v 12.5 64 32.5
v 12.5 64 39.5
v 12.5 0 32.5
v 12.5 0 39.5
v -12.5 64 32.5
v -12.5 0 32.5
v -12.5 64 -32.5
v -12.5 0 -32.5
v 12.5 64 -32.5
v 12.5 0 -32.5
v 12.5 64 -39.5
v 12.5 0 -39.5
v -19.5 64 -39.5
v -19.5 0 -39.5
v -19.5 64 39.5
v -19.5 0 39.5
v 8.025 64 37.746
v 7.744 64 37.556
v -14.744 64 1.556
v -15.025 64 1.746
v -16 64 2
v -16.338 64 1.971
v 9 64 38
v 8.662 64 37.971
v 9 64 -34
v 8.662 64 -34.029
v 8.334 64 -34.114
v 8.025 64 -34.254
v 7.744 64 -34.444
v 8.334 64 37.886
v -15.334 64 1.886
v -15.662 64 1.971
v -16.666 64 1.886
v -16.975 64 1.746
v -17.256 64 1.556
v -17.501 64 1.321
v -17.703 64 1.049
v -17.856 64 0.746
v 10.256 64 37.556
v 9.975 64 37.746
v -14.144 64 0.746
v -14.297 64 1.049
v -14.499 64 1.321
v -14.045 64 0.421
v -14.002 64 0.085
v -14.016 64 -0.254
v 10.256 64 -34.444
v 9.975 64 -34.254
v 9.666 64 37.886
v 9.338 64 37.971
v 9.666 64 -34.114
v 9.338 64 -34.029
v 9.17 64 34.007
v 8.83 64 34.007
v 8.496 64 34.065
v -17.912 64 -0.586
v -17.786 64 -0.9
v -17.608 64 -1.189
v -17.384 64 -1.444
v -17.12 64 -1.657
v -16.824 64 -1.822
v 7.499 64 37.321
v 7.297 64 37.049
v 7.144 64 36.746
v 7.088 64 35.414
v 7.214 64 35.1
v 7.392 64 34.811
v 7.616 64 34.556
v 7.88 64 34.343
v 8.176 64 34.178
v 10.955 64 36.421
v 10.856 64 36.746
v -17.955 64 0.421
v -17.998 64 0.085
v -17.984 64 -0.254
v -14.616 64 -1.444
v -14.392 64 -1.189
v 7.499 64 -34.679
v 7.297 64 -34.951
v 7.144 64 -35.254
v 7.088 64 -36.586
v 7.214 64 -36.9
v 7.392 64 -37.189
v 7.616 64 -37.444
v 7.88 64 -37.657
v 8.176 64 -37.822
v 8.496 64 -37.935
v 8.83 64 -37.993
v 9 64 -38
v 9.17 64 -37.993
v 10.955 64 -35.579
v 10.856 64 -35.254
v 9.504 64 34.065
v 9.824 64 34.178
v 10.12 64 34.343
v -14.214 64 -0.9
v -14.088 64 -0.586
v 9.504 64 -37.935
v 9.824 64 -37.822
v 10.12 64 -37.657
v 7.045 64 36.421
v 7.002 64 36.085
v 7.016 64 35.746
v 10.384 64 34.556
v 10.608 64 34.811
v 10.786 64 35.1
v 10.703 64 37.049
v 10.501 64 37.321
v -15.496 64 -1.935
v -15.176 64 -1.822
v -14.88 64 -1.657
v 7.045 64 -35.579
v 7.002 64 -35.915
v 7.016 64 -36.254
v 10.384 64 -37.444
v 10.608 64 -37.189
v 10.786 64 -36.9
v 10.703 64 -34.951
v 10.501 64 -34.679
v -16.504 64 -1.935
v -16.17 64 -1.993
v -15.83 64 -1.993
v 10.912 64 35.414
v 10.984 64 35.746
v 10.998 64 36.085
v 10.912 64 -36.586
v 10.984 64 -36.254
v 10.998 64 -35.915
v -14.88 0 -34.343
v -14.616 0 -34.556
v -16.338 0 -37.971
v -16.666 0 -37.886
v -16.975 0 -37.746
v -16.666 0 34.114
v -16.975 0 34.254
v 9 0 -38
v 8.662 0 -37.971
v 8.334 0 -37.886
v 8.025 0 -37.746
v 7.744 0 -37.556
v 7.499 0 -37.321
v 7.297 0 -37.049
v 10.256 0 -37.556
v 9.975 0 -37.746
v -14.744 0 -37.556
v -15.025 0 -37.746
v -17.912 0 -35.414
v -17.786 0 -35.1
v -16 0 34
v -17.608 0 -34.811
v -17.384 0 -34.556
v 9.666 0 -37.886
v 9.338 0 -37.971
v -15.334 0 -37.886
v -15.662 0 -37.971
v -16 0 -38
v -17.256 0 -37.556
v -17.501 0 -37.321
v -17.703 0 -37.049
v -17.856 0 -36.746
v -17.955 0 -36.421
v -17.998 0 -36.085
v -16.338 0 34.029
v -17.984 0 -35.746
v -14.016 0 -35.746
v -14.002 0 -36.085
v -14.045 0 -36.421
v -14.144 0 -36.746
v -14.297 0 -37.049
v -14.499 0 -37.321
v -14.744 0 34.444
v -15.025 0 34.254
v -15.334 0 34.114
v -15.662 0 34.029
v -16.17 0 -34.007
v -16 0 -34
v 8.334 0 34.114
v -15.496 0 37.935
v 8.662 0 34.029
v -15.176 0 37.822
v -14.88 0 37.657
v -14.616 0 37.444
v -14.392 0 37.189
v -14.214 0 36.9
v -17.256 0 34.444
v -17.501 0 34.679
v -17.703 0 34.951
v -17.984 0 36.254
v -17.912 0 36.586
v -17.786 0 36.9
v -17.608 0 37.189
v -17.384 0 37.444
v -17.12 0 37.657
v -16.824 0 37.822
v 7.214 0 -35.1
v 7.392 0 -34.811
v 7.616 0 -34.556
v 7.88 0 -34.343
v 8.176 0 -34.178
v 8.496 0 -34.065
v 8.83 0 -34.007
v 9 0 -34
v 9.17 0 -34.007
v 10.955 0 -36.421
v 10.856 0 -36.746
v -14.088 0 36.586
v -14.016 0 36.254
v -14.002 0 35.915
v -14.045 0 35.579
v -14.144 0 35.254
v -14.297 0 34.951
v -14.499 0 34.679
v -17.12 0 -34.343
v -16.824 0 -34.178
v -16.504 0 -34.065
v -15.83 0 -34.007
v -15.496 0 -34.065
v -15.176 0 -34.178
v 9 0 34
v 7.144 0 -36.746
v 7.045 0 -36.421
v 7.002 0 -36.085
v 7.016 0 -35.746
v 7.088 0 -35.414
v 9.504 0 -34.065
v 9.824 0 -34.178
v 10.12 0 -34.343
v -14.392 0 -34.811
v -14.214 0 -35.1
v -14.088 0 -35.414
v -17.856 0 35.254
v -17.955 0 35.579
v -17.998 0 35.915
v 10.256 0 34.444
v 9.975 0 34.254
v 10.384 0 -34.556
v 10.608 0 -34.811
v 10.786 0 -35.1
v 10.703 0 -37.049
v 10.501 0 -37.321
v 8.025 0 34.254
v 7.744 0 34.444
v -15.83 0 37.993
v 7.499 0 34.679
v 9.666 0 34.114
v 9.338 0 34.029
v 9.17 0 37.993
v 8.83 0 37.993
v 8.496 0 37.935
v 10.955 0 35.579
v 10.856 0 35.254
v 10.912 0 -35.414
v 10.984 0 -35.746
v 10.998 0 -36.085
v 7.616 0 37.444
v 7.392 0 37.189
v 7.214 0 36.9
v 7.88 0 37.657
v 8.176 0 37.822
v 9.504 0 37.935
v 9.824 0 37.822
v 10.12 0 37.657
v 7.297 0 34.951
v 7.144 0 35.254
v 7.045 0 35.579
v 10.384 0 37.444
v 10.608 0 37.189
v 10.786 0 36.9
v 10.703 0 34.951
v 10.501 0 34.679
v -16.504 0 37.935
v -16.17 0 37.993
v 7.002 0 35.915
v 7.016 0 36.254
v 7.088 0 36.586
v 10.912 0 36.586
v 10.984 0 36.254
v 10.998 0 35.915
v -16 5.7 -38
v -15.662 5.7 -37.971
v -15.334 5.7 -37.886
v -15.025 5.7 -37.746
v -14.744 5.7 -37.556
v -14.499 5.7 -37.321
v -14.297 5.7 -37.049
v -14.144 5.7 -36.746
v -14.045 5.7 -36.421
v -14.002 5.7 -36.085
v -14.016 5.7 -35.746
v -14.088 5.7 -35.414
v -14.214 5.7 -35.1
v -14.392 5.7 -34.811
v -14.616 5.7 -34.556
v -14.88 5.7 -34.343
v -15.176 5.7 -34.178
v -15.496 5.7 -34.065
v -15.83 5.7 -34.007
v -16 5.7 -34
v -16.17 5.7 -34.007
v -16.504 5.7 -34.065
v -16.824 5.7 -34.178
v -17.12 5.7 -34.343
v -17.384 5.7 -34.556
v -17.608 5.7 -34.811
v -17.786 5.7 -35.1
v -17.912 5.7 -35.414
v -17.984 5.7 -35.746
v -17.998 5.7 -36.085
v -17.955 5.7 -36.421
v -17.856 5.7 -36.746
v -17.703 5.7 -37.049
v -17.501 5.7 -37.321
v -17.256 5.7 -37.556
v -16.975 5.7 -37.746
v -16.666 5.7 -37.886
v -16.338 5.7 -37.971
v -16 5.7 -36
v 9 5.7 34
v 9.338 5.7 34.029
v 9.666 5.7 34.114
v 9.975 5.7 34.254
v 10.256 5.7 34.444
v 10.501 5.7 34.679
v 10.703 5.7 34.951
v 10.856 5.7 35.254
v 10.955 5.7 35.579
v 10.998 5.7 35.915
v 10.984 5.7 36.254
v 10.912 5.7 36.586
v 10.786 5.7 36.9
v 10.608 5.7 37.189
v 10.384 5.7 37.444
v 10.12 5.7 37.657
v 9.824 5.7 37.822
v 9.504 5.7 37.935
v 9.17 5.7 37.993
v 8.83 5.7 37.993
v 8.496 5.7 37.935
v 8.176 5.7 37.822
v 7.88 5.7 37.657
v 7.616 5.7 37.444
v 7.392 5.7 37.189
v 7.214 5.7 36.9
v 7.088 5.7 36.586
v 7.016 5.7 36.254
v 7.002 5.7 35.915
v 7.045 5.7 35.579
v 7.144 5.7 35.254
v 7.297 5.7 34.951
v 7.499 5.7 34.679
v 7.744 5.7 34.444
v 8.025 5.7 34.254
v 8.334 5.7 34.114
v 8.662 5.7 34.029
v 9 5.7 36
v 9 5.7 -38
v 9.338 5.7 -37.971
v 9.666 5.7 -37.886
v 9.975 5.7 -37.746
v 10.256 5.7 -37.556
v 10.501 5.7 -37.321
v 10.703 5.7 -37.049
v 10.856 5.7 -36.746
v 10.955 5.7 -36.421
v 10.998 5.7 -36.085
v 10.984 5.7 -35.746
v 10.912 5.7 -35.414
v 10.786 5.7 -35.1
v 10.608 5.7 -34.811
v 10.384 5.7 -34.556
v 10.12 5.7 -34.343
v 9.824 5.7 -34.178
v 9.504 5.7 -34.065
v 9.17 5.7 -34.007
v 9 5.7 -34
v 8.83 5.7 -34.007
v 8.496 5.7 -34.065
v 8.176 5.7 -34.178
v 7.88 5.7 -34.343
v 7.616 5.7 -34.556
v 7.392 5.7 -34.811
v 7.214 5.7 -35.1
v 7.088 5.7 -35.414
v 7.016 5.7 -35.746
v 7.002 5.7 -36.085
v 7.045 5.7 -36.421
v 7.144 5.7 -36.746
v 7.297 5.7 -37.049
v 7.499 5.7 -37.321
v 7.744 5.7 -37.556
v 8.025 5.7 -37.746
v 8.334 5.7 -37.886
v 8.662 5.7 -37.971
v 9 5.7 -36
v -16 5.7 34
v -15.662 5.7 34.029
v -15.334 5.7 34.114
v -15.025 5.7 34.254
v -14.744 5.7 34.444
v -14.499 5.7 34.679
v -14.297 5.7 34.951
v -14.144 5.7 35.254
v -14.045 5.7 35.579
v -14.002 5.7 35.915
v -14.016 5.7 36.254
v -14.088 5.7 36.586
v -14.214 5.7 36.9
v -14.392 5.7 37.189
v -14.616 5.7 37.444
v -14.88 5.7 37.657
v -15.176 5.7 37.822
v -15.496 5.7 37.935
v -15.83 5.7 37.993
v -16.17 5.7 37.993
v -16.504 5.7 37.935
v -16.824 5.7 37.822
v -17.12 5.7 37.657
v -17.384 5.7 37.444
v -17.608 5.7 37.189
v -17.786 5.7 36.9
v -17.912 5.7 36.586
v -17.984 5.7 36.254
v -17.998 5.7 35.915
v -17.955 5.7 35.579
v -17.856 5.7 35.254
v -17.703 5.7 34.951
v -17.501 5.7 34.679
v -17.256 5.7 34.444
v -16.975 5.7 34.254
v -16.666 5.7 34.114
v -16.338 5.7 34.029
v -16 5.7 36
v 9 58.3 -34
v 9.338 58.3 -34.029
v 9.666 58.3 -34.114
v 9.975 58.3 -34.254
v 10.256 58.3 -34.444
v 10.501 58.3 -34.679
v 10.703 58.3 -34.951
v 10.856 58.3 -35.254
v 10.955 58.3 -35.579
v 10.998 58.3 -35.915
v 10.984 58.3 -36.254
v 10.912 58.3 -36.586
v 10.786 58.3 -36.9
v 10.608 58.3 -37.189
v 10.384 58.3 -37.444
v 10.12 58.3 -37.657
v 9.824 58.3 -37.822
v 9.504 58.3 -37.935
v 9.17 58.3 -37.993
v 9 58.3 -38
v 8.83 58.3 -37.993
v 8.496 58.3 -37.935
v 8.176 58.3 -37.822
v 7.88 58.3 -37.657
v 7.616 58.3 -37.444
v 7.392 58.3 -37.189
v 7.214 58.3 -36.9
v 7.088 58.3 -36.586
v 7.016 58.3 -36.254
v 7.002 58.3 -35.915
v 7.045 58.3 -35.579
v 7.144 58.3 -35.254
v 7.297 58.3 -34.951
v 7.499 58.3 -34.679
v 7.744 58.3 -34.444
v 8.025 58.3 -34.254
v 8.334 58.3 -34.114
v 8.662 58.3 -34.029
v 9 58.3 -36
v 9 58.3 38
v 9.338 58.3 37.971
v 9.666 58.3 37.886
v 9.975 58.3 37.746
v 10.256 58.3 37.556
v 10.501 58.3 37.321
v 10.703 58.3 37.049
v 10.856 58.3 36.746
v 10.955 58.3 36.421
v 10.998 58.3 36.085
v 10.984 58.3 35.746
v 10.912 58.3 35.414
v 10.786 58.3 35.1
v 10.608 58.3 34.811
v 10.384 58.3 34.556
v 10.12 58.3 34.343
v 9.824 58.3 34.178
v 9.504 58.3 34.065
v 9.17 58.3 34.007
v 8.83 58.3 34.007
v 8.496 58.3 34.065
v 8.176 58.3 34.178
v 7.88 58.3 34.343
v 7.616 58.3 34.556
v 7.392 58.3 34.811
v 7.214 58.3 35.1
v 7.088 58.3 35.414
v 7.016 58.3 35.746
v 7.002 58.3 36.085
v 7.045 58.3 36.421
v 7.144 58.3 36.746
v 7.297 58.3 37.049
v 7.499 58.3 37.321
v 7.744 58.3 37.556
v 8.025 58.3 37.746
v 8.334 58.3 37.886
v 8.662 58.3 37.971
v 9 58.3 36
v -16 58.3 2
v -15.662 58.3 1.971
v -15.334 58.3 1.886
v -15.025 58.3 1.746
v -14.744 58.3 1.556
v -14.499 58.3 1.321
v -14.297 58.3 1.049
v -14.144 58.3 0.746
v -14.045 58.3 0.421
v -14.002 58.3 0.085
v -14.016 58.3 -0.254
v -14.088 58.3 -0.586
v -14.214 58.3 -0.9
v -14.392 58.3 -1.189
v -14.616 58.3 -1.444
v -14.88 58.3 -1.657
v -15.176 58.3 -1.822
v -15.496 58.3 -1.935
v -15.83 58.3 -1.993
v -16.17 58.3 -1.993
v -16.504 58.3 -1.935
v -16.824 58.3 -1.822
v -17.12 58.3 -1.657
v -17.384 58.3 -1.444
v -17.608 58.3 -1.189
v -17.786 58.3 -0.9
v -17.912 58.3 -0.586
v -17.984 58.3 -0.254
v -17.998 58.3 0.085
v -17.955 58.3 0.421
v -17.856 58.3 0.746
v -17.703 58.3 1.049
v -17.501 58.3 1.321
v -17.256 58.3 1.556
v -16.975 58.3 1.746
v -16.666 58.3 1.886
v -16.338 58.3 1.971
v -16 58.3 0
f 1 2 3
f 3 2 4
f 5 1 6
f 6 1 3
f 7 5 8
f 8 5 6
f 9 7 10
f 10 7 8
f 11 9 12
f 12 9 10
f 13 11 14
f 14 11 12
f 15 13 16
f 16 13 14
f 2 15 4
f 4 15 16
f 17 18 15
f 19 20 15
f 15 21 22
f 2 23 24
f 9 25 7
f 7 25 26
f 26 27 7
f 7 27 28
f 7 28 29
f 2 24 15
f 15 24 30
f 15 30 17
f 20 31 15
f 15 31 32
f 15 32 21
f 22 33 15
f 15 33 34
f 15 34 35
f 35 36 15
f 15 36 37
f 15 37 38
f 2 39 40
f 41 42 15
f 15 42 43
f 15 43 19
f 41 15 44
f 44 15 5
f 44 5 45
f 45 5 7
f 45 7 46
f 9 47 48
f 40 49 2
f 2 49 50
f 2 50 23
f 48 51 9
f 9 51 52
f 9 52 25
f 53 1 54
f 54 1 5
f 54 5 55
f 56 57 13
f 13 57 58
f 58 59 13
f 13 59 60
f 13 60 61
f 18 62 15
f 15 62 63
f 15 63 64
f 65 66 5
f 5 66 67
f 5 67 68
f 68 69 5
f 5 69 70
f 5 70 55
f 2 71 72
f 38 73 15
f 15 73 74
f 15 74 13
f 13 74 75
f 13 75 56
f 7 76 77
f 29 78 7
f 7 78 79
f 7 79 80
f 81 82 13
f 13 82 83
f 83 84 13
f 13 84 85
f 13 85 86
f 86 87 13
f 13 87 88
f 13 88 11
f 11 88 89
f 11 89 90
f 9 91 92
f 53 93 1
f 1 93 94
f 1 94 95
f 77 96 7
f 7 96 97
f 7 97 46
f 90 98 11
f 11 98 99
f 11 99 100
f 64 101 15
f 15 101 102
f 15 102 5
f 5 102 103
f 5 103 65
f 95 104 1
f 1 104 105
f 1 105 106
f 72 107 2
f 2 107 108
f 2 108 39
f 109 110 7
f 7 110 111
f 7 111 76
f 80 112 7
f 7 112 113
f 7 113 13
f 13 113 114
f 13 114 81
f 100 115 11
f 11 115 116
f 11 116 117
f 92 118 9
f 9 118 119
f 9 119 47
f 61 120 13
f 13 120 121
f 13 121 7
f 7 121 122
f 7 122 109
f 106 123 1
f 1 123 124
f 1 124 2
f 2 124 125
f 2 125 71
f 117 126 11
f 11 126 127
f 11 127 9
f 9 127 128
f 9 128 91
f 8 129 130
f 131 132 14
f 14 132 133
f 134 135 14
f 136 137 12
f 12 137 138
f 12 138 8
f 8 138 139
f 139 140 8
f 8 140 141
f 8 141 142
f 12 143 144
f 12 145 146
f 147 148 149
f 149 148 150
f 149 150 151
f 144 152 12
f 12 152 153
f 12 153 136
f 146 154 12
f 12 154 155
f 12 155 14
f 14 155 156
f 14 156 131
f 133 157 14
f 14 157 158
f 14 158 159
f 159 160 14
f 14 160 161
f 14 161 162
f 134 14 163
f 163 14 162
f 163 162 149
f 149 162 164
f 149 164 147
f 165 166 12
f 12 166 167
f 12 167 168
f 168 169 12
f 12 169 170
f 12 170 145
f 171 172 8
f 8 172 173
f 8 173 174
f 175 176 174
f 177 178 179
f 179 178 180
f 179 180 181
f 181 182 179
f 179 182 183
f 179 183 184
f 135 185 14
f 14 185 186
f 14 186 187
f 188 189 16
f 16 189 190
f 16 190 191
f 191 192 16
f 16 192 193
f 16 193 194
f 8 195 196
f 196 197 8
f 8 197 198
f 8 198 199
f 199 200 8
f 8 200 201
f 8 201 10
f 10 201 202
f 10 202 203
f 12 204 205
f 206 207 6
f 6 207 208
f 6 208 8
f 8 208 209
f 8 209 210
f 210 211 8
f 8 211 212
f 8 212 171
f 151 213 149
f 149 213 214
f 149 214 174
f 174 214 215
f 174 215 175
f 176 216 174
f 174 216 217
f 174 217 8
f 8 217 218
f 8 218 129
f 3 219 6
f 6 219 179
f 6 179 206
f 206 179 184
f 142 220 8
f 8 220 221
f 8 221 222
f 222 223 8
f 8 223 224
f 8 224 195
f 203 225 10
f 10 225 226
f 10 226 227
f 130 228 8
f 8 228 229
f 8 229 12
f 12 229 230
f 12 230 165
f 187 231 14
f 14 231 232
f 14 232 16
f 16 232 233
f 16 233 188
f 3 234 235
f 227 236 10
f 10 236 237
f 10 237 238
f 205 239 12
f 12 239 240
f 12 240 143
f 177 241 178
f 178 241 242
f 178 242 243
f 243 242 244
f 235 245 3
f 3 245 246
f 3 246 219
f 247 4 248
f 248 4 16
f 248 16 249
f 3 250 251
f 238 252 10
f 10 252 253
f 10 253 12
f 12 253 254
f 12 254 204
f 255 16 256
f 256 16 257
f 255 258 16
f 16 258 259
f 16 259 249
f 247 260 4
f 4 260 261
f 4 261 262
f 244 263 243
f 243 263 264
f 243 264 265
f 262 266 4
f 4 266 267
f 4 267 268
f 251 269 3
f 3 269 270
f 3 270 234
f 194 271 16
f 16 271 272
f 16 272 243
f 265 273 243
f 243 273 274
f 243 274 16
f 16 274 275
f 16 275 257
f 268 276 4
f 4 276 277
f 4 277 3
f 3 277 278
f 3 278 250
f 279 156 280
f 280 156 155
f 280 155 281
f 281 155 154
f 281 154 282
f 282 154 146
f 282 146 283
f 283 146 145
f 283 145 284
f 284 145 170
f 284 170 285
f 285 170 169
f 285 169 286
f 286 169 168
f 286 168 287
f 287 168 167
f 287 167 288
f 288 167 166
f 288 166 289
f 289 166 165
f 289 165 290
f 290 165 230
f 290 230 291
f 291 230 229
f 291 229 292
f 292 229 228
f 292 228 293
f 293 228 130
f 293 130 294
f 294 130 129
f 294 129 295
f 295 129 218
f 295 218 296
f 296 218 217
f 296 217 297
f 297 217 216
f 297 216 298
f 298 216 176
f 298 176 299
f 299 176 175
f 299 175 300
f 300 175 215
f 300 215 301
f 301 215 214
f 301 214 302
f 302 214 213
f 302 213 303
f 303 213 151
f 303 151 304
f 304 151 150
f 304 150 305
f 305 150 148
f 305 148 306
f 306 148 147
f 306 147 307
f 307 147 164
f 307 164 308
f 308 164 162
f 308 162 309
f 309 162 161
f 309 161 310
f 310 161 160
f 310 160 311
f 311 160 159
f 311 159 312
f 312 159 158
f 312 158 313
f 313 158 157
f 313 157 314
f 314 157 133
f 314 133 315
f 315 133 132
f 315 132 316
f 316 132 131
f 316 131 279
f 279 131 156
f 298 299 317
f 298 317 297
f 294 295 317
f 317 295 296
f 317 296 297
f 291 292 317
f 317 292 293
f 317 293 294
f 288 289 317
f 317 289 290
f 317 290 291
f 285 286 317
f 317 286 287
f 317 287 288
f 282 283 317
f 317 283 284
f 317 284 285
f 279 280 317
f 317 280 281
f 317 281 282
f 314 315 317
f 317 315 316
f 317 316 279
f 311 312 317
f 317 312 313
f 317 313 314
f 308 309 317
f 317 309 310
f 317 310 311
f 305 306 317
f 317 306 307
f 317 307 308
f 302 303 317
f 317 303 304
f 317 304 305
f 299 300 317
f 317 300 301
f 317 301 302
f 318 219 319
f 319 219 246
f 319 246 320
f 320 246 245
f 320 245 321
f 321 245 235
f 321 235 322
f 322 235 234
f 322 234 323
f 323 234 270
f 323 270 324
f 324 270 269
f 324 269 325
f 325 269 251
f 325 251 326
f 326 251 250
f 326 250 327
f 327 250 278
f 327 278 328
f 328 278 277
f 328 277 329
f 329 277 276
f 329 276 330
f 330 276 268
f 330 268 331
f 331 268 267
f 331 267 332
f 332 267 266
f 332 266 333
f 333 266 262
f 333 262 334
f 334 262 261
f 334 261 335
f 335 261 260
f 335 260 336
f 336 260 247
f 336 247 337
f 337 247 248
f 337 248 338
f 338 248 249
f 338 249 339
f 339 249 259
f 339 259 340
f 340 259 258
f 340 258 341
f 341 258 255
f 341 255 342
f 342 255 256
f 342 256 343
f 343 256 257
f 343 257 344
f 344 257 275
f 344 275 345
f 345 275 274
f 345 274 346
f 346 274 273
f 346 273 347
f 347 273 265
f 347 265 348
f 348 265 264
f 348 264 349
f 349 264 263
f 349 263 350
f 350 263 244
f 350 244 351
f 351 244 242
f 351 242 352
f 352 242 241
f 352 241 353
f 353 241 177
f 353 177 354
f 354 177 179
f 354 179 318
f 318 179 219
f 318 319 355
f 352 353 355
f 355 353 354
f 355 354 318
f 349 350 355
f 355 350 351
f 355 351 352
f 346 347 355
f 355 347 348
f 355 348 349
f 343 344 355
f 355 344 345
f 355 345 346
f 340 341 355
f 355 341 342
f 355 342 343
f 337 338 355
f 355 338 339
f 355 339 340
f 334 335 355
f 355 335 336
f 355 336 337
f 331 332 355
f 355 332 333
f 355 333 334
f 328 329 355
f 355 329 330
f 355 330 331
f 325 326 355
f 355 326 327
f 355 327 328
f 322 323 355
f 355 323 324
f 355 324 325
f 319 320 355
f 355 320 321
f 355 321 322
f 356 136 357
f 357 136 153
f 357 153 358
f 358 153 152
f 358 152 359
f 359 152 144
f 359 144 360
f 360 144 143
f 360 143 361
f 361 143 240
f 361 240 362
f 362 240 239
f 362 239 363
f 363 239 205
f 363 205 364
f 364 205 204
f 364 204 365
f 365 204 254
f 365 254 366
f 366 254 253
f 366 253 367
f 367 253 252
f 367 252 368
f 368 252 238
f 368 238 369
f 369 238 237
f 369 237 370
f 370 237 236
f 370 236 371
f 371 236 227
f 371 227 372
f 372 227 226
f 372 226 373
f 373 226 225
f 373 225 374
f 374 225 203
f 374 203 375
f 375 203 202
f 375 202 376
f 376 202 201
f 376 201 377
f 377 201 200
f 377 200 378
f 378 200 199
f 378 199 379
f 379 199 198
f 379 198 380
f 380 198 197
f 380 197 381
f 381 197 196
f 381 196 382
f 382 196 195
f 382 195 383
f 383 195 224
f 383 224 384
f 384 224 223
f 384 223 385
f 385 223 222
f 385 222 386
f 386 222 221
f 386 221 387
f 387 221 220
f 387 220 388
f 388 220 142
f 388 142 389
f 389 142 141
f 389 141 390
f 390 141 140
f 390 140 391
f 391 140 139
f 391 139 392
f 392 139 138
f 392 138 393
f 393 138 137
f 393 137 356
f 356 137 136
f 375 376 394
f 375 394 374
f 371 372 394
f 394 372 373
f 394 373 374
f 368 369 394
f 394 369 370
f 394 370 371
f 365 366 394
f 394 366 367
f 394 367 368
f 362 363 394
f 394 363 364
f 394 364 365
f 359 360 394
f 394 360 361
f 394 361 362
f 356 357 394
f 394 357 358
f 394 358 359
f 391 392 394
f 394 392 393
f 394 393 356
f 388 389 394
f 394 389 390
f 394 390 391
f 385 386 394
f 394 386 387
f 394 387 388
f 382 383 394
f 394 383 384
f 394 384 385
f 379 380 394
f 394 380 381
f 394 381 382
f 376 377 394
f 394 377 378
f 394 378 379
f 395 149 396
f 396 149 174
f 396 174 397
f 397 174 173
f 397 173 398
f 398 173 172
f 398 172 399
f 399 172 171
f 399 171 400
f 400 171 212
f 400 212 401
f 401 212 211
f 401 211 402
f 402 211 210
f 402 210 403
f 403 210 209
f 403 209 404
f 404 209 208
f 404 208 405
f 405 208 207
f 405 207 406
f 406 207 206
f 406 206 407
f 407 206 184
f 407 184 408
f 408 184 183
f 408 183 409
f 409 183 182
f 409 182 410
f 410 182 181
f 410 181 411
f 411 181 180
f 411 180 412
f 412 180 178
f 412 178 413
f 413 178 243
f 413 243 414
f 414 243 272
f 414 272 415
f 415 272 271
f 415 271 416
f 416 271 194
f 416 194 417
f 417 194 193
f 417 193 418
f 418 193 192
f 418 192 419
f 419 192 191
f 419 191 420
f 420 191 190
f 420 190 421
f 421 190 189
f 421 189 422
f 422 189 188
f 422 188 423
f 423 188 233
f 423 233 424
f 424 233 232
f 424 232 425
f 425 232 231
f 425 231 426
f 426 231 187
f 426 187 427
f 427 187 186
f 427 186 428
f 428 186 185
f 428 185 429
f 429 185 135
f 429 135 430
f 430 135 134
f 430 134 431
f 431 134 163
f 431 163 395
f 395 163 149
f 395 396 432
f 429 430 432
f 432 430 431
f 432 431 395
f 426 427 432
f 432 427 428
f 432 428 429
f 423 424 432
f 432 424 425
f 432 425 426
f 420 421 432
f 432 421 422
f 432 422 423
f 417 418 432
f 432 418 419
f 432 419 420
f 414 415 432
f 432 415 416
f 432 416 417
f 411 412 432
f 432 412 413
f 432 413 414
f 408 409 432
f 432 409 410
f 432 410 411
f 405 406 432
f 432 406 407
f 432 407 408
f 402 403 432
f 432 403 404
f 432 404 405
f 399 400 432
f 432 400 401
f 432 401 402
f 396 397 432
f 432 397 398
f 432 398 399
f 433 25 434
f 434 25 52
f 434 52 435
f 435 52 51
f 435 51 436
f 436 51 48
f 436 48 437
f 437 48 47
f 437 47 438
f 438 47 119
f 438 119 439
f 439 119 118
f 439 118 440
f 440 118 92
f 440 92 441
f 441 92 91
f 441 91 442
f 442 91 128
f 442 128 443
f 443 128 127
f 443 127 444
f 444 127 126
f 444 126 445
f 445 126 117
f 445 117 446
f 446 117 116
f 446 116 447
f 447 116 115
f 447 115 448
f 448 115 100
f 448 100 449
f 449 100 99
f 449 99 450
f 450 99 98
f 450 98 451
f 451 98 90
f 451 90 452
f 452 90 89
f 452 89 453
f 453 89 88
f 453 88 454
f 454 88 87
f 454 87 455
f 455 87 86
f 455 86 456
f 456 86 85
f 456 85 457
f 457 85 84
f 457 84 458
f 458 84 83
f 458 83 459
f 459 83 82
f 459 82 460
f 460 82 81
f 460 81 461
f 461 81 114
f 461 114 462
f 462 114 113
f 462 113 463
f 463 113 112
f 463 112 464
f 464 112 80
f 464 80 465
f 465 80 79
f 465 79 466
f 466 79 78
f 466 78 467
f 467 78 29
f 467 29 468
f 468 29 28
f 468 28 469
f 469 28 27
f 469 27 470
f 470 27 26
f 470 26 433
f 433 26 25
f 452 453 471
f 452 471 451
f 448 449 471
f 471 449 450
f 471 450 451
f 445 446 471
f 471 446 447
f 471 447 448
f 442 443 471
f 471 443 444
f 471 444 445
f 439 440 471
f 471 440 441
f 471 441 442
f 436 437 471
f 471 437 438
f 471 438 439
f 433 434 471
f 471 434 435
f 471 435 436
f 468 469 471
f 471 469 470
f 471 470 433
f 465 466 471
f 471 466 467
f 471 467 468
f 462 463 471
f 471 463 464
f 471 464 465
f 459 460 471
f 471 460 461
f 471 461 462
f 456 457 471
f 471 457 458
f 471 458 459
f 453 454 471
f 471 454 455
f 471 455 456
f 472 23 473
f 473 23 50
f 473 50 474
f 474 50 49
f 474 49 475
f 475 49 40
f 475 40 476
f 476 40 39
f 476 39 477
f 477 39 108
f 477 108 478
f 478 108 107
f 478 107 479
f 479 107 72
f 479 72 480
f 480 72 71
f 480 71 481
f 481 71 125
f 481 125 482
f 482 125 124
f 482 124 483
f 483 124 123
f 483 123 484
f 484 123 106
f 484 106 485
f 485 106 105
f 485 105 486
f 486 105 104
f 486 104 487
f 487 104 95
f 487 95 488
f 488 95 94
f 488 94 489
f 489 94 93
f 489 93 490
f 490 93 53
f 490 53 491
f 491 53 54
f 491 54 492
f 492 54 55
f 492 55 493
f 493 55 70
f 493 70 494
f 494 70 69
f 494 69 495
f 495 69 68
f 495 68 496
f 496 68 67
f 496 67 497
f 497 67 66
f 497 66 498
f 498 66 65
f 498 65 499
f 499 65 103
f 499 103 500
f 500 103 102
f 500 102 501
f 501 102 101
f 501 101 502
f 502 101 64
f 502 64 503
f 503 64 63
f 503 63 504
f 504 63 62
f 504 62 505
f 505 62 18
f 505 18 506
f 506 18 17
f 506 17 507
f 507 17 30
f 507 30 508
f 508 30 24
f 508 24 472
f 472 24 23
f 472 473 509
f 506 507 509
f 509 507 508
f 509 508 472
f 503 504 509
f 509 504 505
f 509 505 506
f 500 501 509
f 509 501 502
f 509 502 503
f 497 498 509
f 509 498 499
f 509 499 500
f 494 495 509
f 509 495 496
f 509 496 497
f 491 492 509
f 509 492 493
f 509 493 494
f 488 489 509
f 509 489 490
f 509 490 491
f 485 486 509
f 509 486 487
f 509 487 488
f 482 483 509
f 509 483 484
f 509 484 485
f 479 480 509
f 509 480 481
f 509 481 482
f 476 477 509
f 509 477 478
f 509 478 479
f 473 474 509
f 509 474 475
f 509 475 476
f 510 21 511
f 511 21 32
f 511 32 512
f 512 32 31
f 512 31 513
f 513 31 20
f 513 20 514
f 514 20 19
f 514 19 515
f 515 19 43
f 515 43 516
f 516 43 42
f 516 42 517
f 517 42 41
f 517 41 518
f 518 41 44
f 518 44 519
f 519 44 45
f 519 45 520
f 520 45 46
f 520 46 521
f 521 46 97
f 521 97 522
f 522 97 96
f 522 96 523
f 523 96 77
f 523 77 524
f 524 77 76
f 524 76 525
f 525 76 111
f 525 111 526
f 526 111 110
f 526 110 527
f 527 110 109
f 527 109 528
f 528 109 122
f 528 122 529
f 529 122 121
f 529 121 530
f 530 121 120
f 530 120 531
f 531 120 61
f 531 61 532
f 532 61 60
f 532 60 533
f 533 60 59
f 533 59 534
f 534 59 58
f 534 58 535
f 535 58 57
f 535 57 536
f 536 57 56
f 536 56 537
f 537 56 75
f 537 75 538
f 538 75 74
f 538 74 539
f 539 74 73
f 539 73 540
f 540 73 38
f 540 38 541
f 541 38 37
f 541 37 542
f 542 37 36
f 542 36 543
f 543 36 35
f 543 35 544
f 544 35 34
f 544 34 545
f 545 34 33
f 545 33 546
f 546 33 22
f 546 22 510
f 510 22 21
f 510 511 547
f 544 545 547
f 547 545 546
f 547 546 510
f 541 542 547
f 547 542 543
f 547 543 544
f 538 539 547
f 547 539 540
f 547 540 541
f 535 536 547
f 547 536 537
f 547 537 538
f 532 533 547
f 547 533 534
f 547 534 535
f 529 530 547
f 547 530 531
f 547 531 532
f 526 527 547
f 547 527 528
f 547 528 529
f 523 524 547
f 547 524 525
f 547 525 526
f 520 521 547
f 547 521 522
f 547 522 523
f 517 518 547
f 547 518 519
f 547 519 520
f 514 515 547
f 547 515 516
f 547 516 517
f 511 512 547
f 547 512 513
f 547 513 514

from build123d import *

# Parameters (mm, degrees)
BOSS_EXTRUDE1_DEPTH = 64
SKETCH2_R           = 2
CUT_EXTRUDE1_DEPTH  = 5.7
CUT_EXTRUDE2_START  = -5.7
SKETCH3_R           = 2
CUT_EXTRUDE2_DEPTH  = 5.7


with BuildPart() as part:
    # Sketch1 → Boss-Extrude1 (new body)
    with BuildSketch(Plane(origin=(0, 0, 0), x_dir=(1, 0, 0), z_dir=(0, 1, 0))):
        Polygon((-19.5, 39.5), (-19.5, -39.5), (12.5, -39.5), (12.5, -32.5), (-12.5, -32.5), (-12.5, 32.5), (12.5, 32.5), (12.5, 39.5), align=None)
    extrude(amount=BOSS_EXTRUDE1_DEPTH)

    # Sketch2 → Cut-Extrude1 (cut)
    with BuildSketch(Plane(origin=(0, 0, 0), x_dir=(1, 0, 0), z_dir=(0, 1, 0))):
        with Locations(Location((-16, 36, 0), (0, 0, 270))):
            Circle(SKETCH2_R)
        with Locations(Location((-16, -36, 0), (0, 0, 90))):
            Circle(SKETCH2_R)
        with Locations(Location((9, 36, 0), (0, 0, 270))):
            Circle(SKETCH2_R)
        with Locations(Location((9, -36, 0), (0, 0, 90))):
            Circle(SKETCH2_R)
    extrude(amount=CUT_EXTRUDE1_DEPTH, mode=Mode.SUBTRACT)

    # Sketch3 → Cut-Extrude2 (cut)
    with BuildSketch(Plane(origin=(0, 64, 0), x_dir=(1, 0, 0), z_dir=(0, 1, 0)).offset(CUT_EXTRUDE2_START)):
        with Locations(Location((-16, 0, 0), (0, 0, 270))):
            Circle(SKETCH3_R)
        with Locations(Location((9, -36, 0), (0, 0, 90))):
            Circle(SKETCH3_R)
        with Locations(Location((9, 36, 0), (0, 0, 270))):
            Circle(SKETCH3_R)
    extrude(amount=CUT_EXTRUDE2_DEPTH, mode=Mode.SUBTRACT)


solid = part.part
